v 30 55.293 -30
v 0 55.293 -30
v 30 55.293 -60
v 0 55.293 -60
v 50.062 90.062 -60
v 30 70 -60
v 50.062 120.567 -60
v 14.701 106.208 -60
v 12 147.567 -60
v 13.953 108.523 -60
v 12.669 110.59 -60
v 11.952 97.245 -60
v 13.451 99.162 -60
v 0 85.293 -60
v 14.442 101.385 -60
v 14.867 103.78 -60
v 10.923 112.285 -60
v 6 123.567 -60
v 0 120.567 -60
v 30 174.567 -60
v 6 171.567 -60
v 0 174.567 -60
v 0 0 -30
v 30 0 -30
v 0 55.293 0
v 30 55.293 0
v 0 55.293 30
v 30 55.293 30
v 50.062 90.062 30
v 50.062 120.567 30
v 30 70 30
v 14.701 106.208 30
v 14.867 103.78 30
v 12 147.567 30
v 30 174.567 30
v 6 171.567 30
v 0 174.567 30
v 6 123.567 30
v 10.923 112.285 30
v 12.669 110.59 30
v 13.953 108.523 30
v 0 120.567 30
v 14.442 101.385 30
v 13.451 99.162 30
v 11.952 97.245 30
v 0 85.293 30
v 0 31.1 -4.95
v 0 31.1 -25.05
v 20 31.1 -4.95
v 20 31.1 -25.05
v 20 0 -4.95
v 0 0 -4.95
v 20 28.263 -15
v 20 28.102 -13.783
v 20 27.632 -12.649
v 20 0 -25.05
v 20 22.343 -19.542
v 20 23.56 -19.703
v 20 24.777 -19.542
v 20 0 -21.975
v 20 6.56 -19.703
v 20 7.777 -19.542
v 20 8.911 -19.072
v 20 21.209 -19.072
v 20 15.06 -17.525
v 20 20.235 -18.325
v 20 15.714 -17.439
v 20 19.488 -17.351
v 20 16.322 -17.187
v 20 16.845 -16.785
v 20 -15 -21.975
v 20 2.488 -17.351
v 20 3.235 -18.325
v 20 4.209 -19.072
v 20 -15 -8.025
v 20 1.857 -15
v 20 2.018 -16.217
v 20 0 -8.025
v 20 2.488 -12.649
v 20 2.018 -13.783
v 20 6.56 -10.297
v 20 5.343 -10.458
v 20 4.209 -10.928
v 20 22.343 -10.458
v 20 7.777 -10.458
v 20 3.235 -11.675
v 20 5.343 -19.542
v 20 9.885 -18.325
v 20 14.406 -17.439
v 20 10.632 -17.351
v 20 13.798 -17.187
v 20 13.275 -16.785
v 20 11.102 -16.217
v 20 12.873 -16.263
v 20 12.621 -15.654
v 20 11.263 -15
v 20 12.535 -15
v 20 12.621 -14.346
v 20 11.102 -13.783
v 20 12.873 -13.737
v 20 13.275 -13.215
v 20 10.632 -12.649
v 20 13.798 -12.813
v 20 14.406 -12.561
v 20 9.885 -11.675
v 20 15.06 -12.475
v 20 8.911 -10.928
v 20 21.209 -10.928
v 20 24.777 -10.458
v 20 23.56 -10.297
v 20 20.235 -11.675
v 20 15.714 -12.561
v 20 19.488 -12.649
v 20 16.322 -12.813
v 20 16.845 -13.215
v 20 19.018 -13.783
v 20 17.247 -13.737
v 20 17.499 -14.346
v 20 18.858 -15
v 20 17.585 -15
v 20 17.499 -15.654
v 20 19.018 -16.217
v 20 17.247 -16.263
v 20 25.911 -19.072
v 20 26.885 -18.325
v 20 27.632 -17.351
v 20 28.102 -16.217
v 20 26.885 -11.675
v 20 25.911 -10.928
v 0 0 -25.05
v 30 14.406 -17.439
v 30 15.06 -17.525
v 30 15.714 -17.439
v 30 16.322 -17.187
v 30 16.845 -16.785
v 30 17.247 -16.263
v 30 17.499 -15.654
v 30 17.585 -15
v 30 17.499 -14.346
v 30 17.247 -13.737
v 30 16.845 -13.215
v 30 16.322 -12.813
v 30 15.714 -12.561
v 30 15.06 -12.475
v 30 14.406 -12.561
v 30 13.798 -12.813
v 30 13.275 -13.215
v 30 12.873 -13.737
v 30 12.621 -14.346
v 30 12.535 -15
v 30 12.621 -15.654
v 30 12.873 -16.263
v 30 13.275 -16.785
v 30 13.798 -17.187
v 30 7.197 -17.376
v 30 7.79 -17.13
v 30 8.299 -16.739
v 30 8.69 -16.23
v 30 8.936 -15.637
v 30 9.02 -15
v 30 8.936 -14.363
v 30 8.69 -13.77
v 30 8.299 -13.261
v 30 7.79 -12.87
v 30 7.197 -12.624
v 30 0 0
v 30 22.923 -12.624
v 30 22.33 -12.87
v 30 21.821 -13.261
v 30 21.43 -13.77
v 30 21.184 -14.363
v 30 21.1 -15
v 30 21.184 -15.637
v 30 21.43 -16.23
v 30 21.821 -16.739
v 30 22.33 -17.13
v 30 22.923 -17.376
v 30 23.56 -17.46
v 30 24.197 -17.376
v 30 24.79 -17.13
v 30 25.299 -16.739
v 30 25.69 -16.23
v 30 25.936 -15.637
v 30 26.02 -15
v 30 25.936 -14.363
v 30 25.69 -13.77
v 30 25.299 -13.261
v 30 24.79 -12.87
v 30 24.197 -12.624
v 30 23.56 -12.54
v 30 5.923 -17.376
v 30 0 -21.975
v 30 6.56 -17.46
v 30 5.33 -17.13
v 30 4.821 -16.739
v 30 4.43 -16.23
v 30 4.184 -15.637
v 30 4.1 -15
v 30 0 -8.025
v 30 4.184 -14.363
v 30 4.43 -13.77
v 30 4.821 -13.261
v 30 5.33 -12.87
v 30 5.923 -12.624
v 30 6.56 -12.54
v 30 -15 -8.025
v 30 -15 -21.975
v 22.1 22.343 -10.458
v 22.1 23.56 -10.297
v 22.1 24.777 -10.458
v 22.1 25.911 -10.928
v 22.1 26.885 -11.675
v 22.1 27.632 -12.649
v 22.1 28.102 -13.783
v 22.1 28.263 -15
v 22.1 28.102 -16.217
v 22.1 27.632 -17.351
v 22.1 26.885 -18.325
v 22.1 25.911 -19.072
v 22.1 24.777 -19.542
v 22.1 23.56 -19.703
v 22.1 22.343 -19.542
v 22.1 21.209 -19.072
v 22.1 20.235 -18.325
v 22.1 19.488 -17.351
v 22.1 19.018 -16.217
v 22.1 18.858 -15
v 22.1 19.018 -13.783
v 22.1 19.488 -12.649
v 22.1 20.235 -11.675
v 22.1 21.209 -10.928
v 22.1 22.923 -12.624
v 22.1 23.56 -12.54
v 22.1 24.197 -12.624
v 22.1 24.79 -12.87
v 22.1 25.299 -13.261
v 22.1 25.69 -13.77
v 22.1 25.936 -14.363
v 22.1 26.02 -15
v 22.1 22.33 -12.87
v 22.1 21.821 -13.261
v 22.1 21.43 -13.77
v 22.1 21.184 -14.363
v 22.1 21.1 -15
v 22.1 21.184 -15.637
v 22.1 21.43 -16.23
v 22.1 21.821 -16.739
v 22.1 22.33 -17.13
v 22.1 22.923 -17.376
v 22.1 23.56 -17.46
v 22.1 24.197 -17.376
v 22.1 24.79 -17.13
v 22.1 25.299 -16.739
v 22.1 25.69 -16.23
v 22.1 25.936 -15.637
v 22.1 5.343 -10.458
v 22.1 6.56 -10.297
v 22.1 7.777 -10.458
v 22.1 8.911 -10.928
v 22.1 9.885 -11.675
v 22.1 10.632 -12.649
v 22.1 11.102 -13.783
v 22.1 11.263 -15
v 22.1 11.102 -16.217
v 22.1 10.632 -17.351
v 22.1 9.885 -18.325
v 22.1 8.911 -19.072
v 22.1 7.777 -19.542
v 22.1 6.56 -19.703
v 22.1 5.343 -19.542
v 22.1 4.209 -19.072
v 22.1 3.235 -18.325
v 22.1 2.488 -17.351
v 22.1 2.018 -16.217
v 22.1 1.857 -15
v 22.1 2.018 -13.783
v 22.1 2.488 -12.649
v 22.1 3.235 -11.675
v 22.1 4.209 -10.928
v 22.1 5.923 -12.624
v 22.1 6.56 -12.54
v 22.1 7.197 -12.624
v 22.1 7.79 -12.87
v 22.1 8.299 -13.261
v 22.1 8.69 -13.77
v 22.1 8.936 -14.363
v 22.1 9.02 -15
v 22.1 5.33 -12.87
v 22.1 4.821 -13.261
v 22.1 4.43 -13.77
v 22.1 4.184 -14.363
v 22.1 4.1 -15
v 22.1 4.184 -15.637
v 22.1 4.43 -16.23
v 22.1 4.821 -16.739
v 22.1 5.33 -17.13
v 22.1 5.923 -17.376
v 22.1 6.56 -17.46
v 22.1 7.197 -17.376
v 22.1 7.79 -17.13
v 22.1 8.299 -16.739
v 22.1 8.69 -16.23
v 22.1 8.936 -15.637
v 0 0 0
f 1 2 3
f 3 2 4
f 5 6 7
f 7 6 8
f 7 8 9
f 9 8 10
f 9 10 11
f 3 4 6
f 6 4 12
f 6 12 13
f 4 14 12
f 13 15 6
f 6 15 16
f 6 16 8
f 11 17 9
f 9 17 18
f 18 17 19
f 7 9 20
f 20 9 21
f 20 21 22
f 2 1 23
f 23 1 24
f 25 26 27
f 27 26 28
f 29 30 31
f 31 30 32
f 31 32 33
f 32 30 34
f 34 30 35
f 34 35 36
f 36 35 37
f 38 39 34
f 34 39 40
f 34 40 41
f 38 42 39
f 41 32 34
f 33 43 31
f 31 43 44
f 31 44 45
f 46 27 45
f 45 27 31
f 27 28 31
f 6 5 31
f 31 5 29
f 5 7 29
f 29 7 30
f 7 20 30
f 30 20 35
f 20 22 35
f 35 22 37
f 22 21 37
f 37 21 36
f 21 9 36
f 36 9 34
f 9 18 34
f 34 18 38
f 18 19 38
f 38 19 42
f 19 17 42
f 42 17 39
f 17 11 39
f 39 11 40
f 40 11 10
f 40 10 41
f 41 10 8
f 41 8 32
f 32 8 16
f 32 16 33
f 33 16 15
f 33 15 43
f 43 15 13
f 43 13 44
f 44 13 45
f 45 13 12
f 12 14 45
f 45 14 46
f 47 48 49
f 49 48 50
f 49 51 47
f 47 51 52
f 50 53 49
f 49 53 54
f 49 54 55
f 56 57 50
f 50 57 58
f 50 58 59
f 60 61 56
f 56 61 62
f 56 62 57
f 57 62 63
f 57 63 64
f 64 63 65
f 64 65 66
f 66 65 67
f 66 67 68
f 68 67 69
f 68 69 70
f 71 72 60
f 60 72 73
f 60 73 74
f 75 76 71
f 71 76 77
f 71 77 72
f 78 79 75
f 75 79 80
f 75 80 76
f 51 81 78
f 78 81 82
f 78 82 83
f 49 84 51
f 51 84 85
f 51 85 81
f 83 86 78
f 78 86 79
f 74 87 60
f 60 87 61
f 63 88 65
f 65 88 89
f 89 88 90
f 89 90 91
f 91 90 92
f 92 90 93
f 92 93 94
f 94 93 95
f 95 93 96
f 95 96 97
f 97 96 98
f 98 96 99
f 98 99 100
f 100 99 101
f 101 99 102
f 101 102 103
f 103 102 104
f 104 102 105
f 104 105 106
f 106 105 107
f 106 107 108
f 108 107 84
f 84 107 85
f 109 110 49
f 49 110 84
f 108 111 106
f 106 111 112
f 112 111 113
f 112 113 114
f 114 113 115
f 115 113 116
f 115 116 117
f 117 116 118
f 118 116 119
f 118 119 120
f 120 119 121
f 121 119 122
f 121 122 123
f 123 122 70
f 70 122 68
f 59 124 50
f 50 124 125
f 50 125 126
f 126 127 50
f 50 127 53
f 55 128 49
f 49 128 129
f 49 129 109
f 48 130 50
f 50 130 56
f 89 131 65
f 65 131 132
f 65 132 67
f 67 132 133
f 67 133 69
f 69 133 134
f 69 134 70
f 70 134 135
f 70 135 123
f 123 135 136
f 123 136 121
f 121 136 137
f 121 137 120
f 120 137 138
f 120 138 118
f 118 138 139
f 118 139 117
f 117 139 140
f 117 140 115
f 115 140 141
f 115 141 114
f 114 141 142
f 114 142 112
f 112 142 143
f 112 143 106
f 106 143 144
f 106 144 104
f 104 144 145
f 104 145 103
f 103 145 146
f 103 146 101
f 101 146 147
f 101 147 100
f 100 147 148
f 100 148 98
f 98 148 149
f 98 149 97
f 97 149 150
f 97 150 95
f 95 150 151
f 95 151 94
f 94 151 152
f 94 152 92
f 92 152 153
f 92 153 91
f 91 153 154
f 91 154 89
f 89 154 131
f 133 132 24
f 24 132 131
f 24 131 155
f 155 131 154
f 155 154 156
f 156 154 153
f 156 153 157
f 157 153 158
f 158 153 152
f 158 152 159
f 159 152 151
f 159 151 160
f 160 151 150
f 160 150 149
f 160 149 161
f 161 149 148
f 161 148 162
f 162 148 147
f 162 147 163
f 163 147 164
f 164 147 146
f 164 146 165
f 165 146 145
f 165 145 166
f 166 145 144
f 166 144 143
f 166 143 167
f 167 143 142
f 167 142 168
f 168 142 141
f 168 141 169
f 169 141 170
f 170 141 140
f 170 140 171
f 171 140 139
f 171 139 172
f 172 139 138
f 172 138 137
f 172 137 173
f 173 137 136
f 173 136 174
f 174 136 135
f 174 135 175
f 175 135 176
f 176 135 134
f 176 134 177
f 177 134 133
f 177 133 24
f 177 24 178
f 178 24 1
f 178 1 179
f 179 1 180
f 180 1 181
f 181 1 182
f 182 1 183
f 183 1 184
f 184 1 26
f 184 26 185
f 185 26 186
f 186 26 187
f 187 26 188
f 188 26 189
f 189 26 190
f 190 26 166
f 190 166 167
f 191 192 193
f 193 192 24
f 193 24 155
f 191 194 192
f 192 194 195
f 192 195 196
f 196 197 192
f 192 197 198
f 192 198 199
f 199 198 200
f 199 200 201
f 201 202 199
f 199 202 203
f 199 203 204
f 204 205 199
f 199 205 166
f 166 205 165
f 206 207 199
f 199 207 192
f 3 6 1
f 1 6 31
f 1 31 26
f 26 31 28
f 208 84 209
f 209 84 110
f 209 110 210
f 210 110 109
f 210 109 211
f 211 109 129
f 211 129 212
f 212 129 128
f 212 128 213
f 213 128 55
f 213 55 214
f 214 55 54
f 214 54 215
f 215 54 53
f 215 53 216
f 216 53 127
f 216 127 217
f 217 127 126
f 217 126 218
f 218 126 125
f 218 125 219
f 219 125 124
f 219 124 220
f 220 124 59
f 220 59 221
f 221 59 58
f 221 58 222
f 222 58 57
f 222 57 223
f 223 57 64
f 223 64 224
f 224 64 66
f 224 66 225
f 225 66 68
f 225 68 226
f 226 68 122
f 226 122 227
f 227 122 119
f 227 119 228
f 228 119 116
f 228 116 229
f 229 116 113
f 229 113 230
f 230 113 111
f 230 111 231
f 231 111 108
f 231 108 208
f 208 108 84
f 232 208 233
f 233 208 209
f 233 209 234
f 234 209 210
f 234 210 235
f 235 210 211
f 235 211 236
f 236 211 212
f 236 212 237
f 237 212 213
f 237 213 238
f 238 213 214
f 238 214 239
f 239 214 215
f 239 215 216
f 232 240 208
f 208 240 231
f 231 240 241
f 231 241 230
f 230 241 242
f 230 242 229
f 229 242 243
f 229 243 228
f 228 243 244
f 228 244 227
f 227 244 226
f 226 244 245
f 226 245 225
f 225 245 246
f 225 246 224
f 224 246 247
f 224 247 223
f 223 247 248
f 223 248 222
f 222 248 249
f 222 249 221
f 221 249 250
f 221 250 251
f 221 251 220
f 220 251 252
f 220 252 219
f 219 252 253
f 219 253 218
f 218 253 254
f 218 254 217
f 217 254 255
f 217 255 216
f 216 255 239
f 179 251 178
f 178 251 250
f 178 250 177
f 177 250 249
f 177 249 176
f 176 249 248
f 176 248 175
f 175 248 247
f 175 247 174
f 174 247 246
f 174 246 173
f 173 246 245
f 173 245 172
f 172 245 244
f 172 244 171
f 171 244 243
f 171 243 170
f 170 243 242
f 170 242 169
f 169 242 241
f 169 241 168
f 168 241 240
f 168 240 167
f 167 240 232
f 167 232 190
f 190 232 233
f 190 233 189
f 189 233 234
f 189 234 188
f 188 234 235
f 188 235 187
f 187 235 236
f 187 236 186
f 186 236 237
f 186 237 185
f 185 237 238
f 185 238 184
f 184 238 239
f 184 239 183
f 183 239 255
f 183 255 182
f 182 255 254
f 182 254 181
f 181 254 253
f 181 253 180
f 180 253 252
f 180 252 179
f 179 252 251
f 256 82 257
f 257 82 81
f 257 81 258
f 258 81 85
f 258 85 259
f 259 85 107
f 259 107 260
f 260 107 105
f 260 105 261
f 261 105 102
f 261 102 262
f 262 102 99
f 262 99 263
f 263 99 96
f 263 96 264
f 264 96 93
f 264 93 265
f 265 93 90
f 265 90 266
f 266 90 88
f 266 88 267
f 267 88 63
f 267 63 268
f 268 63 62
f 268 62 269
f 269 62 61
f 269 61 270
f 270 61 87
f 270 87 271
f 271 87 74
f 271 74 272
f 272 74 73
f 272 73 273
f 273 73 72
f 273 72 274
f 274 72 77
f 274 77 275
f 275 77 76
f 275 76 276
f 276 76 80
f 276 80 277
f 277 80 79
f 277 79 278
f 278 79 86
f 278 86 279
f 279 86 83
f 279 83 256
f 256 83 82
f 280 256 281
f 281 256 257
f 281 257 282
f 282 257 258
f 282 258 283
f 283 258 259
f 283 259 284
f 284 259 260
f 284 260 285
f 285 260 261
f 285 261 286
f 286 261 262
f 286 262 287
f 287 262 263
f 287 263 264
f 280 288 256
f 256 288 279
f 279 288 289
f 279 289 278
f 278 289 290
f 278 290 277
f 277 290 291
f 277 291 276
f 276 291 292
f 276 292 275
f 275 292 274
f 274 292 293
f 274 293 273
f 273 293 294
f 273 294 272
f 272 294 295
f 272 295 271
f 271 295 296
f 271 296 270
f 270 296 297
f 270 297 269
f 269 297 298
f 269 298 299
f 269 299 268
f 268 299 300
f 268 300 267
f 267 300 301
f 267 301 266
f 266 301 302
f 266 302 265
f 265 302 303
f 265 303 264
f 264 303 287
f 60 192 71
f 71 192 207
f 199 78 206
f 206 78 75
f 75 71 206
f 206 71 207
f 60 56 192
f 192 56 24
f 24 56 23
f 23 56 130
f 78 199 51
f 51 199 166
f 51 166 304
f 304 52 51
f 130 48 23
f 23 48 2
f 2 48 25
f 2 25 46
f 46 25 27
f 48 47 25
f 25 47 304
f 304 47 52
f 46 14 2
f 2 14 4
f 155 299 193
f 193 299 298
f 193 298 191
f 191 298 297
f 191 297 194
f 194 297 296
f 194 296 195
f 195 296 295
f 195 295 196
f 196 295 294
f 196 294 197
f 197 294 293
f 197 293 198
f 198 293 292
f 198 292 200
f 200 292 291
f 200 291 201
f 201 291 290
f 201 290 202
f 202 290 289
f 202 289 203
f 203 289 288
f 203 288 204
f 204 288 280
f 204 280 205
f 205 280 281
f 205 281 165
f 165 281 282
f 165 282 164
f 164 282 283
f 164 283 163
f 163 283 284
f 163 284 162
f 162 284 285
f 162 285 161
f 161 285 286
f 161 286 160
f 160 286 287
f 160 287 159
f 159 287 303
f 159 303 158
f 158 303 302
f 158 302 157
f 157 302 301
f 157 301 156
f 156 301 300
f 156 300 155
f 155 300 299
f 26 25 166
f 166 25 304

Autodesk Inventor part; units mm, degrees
ref_plane "YZ Plane" through (0, 0, 0) normal (1, 0, 0) x (0, 1, 0)
ref_plane "XZ Plane" through (0, 0, 0) normal (0, 1, 0) x (-1, 0, 0)
sketch "Sketch1" plane through (0, 0, 0) normal (0, 0, 1) x (1, 0, 0)
  line L0 (0, 0) -> (25, 0)
  line L1 (25, 0) -> (25, 40)
  line L2 (25, 40) -> (0, 40)
  line L3 (0, 40) -> (0, 0)
  dimension "d1" = 25
  dimension "d2" = 40
  dimension "d3" = 25
extrude "Extrusion1" add sketch "Sketch1" against normal blind 30
sketch "Sketch2" plane through (25, 0, 0) normal (1, 0, 0) x (0, 0, -1)
  line L0 (0, 0) -> (30, 0) projected
  circle A0 centre (15, 6.56) radius 2.46
extrude "Extrusion2" cut sketch "Sketch2" against normal blind 30
sketch "Sketch3" plane through (0, 0, 0) normal (-1, 0, 0) x (0, 0, 1)
  line L0 (0, 0) -> (-30, 0) projected
  line L1 (-25.05, 0) -> (-4.95, 0)
  line L2 (-4.95, 0) -> (-4.95, 33.12)
  line L3 (-4.95, 33.12) -> (-25.05, 33.12)
  line L4 (-25.05, 33.12) -> (-25.05, 0)
  dimension "d11" = 20.1
extrude "Extrusion3" cut sketch "Sketch3" against normal blind 20
sketch "Sketch4" plane through (0, 0, 0) normal (0, -1, 0) x (1, 0, 0)
  line L0 (20, -4.95) -> (20, -25.05) projected
  line L1 (20, -15) -> (25, -15)
  line L2 (25, 0) -> (25, -30) projected
  line L3 (20, -8.025) -> (25, -8.025)
  line L4 (25, -8.025) -> (25, -21.975)
  line L5 (25, -21.975) -> (20, -21.975)
  line L6 (20, -21.975) -> (20, -8.025)
  line L7 (20, -8.025) -> (25, -21.975) construction
  line L8 (25, -8.025) -> (20, -21.975) construction
  line L9 (25, -12.54) -> (25, -17.46) projected
  point P0 (0, 0)
  point P1 (22.5, -15)
  dimension "d14" = 13.95
extrude "Extrusion4" add sketch "Sketch4" along normal blind 15
sketch "Sketch5" plane through (20, 0, 0) normal (-1, 0, 0) x (0, 0, 1)
  circle A0 centre (-15, 6.56) radius 2.46 projected
  circle A1 centre (-15, 6.56) radius 4.7025
  circle A2 centre (-15, 6.56) radius 2.46 projected
  circle A3 centre (-15, 6.56) radius 2.46
  point P0 (0, 0)
  dimension "d17" = 9.405
extrude "Extrusion5" cut sketch "Sketch5" against normal blind 2.1
sketch "Sketch6" plane through (25, 0, 0) normal (1, 0, 0) x (0, 0, -1)
  circle A0 centre (15, 6.56) radius 4.7025 projected
  line L0 (15, 6.56) -> (15, 23.56)
  circle A1 centre (15, 23.56) radius 2.46
  point P0 (0, 0)
  dimension "d20" = 17
  dimension "d21" = 4.92
extrude "Extrusion6" cut sketch "Sketch6" against normal blind 10 contours A1
sketch "Sketch7" plane through (20, 0, 0) normal (-1, 0, 0) x (0, 0, 1)
  circle A0 centre (-15, 23.56) radius 2.46 projected
  circle A1 centre (-15, 23.56) radius 4.7025
  point P0 (0, 0)
  dimension "d24" = 9.405
extrude "Extrusion7" cut sketch "Sketch7" against normal blind 2.1
sketch "Sketch9" plane through (25, 0, 0) normal (1, 0, 0) x (0, 0, -1)
  circle A0 centre (15, 6.56) radius 2.46 projected
  circle A1 centre (15, 6.56) radius 2.46
  circle A2 centre (15, 23.56) radius 2.46 projected
  circle A3 centre (15, 23.56) radius 2.46
  line L0 (30, 40) -> (30, 0) projected
  line L1 (30, 0) -> (30, 40)
  line L2 (30, 40) -> (0, 40)
  line L3 (0, 40) -> (0, 0)
  line L4 (0, 0) -> (8.025, 0) projected
  line L5 (21.975, 0) -> (21.975, -15)
  line L6 (21.975, -15) -> (8.025, -15)
  line L7 (8.025, -15) -> (8.025, 0)
  line L8 (0, 0) -> (8.025, 0)
  line L9 (21.975, 0) -> (30, 0)
extrude "Extrusion8" add sketch "Sketch9" along normal blind 5
sketch "Sketch10" plane through (0, 40, 0) normal (0, 1, 0) x (1, 0, 0)
  line L0 (0, 30) -> (30, 30) projected
  line L1 (30, 0) -> (0, 0) projected
  line L2 (0, 30) -> (30, 30)
  line L3 (30, 30) -> (30, 0)
  line L4 (30, 0) -> (0, 0)
  line L5 (0, 0) -> (0, 30)
extrude "Extrusion9" add sketch "Sketch10" along normal blind 30
sketch "Sketch12" plane through (30, 0, 0) normal (1, 0, 0) x (0, 0, -1)
  circle A0 centre (15, 6.56) radius 2.46 projected
  line L0 (15, 6.56) -> (15, 15.06)
  circle A1 centre (15, 15.06) radius 2.525
  point P0 (0, 0)
  dimension "d31" = 8.5
  dimension "d33" = 5.05
extrude "Extrusion10" cut sketch "Sketch12" against normal blind 30 contours A1
sketch "Sketch15" plane through (0, 0, -25.05) normal (-1, 0, 0) x (0, 0, 1)
  line L0 (0, 33.12) -> (20.1, 33.12) projected
  line L1 (20.1, 33.12) -> (20.1, 0) projected
  line L2 (0, 33.12) -> (20.1, 33.12)
  line L3 (20.1, 33.12) -> (20.1, 31.1)
  line L4 (20.1, 31.1) -> (0, 31.1)
  line L5 (0, 31.1) -> (0, 33.12)
  point P0 (25.05, 0)
  dimension "d57" = 2.02
extrude "Extrusion13" add sketch "Sketch15" against normal blind 20
sketch "Sketch17" plane through (0, 0, 0) normal (0, 0, 1) x (1, 0, 0)
  line L0 (0, 70) -> (30, 70) projected
  line L1 (30, 70) -> (50.0622, 90.0622)
  line L2 (30, 70) -> (80, 70) construction
  line L3 (11.9522, 97.2454) -> (0, 85.2932)
  line L4 (0, 70) -> (0, 85.2932)
  line L5 (0, 70) -> (0, 0) projected
  line L6 (0, 70) -> (30, 70)
  line L7 (10.923, 112.2849) -> (0, 120.567)
  line L8 (50.0622, 105.3553) -> (50.0622, 120.567)
  line L9 (50.0622, 105.3553) -> (50.0622, 90.0622)
  arc A0 (11.9522, 97.2454) -> (10.923, 112.2849) centre (4.8811, 104.3165) ccw
  line L10 (0, 174.567) -> (30, 174.567)
  line L11 (30, 174.567) -> (50.0622, 120.567)
  line L12 (6, 171.567) -> (0, 174.567)
  line L13 (6, 123.567) -> (0, 120.567)
  line L14 (6, 123.567) -> (12, 147.567)
  line L15 (6, 171.567) -> (12, 147.567)
  dimension "d61" = 45
  dimension "d62" = 32.0271
  dimension "d72" = 10
extrude "Extrusion14" add sketch "Sketch17" against normal blind 30
sketch "Sketch24" plane through (0, 0, 0) normal (0, 0, 1) x (1, 0, 0)
  line L0 (30, 70) -> (50.0622, 90.0622) projected
  line L1 (30, 70) -> (50.0622, 90.0622)
  line L2 (50.0622, 90.0622) -> (50.0622, 120.567) projected
  line L3 (50.0622, 90.0622) -> (50.0622, 120.567)
  line L4 (30, 174.567) -> (50.0622, 120.567) projected
  line L5 (50.0622, 120.567) -> (30, 174.567)
  line L6 (30, 174.567) -> (0, 174.567) projected
  line L7 (30, 174.567) -> (0, 174.567)
  line L8 (0, 174.567) -> (6, 171.567) projected
  line L9 (0, 174.567) -> (6, 171.567)
  line L10 (12, 147.567) -> (6, 171.567) projected
  line L11 (6, 171.567) -> (12, 147.567)
  line L12 (12, 147.567) -> (6, 123.567) projected
  line L13 (12, 147.567) -> (6, 123.567)
  line L14 (6, 123.567) -> (0, 120.567) projected
  line L15 (6, 123.567) -> (0, 120.567)
  line L16 (0, 120.567) -> (10.923, 112.2849) projected
  line L17 (0, 120.567) -> (10.923, 112.2849)
  line L18 (0, 85.2932) -> (11.9522, 97.2454) projected
  line L19 (11.9522, 97.2454) -> (0, 85.2932)
  line L20 (0, 85.2932) -> (0, 55.2932)
  line L21 (0, 0) -> (0, 85.2932) projected
  line L22 (0, 55.2932) -> (30, 55.2932)
  line L23 (30, 0) -> (30, 70) projected
  line L24 (30, 55.2932) -> (30, 70)
  arc A0 (11.9522, 97.2454) -> (10.923, 112.2849) centre (4.8811, 104.3165) ccw
  dimension "d106" = 30
extrude "Extrusion15" add sketch "Sketch24" along normal blind 30
ref_plane "Work Plane1" through (0, 0, -15) normal (0, 0, 1) x (1, 0, 0)
mirror "Mirror1" about plane through (0, 0, -15) normal (0, 0, 1) of "Extrusion15"
properties part number "rec_c_48mm_x_90mm"
